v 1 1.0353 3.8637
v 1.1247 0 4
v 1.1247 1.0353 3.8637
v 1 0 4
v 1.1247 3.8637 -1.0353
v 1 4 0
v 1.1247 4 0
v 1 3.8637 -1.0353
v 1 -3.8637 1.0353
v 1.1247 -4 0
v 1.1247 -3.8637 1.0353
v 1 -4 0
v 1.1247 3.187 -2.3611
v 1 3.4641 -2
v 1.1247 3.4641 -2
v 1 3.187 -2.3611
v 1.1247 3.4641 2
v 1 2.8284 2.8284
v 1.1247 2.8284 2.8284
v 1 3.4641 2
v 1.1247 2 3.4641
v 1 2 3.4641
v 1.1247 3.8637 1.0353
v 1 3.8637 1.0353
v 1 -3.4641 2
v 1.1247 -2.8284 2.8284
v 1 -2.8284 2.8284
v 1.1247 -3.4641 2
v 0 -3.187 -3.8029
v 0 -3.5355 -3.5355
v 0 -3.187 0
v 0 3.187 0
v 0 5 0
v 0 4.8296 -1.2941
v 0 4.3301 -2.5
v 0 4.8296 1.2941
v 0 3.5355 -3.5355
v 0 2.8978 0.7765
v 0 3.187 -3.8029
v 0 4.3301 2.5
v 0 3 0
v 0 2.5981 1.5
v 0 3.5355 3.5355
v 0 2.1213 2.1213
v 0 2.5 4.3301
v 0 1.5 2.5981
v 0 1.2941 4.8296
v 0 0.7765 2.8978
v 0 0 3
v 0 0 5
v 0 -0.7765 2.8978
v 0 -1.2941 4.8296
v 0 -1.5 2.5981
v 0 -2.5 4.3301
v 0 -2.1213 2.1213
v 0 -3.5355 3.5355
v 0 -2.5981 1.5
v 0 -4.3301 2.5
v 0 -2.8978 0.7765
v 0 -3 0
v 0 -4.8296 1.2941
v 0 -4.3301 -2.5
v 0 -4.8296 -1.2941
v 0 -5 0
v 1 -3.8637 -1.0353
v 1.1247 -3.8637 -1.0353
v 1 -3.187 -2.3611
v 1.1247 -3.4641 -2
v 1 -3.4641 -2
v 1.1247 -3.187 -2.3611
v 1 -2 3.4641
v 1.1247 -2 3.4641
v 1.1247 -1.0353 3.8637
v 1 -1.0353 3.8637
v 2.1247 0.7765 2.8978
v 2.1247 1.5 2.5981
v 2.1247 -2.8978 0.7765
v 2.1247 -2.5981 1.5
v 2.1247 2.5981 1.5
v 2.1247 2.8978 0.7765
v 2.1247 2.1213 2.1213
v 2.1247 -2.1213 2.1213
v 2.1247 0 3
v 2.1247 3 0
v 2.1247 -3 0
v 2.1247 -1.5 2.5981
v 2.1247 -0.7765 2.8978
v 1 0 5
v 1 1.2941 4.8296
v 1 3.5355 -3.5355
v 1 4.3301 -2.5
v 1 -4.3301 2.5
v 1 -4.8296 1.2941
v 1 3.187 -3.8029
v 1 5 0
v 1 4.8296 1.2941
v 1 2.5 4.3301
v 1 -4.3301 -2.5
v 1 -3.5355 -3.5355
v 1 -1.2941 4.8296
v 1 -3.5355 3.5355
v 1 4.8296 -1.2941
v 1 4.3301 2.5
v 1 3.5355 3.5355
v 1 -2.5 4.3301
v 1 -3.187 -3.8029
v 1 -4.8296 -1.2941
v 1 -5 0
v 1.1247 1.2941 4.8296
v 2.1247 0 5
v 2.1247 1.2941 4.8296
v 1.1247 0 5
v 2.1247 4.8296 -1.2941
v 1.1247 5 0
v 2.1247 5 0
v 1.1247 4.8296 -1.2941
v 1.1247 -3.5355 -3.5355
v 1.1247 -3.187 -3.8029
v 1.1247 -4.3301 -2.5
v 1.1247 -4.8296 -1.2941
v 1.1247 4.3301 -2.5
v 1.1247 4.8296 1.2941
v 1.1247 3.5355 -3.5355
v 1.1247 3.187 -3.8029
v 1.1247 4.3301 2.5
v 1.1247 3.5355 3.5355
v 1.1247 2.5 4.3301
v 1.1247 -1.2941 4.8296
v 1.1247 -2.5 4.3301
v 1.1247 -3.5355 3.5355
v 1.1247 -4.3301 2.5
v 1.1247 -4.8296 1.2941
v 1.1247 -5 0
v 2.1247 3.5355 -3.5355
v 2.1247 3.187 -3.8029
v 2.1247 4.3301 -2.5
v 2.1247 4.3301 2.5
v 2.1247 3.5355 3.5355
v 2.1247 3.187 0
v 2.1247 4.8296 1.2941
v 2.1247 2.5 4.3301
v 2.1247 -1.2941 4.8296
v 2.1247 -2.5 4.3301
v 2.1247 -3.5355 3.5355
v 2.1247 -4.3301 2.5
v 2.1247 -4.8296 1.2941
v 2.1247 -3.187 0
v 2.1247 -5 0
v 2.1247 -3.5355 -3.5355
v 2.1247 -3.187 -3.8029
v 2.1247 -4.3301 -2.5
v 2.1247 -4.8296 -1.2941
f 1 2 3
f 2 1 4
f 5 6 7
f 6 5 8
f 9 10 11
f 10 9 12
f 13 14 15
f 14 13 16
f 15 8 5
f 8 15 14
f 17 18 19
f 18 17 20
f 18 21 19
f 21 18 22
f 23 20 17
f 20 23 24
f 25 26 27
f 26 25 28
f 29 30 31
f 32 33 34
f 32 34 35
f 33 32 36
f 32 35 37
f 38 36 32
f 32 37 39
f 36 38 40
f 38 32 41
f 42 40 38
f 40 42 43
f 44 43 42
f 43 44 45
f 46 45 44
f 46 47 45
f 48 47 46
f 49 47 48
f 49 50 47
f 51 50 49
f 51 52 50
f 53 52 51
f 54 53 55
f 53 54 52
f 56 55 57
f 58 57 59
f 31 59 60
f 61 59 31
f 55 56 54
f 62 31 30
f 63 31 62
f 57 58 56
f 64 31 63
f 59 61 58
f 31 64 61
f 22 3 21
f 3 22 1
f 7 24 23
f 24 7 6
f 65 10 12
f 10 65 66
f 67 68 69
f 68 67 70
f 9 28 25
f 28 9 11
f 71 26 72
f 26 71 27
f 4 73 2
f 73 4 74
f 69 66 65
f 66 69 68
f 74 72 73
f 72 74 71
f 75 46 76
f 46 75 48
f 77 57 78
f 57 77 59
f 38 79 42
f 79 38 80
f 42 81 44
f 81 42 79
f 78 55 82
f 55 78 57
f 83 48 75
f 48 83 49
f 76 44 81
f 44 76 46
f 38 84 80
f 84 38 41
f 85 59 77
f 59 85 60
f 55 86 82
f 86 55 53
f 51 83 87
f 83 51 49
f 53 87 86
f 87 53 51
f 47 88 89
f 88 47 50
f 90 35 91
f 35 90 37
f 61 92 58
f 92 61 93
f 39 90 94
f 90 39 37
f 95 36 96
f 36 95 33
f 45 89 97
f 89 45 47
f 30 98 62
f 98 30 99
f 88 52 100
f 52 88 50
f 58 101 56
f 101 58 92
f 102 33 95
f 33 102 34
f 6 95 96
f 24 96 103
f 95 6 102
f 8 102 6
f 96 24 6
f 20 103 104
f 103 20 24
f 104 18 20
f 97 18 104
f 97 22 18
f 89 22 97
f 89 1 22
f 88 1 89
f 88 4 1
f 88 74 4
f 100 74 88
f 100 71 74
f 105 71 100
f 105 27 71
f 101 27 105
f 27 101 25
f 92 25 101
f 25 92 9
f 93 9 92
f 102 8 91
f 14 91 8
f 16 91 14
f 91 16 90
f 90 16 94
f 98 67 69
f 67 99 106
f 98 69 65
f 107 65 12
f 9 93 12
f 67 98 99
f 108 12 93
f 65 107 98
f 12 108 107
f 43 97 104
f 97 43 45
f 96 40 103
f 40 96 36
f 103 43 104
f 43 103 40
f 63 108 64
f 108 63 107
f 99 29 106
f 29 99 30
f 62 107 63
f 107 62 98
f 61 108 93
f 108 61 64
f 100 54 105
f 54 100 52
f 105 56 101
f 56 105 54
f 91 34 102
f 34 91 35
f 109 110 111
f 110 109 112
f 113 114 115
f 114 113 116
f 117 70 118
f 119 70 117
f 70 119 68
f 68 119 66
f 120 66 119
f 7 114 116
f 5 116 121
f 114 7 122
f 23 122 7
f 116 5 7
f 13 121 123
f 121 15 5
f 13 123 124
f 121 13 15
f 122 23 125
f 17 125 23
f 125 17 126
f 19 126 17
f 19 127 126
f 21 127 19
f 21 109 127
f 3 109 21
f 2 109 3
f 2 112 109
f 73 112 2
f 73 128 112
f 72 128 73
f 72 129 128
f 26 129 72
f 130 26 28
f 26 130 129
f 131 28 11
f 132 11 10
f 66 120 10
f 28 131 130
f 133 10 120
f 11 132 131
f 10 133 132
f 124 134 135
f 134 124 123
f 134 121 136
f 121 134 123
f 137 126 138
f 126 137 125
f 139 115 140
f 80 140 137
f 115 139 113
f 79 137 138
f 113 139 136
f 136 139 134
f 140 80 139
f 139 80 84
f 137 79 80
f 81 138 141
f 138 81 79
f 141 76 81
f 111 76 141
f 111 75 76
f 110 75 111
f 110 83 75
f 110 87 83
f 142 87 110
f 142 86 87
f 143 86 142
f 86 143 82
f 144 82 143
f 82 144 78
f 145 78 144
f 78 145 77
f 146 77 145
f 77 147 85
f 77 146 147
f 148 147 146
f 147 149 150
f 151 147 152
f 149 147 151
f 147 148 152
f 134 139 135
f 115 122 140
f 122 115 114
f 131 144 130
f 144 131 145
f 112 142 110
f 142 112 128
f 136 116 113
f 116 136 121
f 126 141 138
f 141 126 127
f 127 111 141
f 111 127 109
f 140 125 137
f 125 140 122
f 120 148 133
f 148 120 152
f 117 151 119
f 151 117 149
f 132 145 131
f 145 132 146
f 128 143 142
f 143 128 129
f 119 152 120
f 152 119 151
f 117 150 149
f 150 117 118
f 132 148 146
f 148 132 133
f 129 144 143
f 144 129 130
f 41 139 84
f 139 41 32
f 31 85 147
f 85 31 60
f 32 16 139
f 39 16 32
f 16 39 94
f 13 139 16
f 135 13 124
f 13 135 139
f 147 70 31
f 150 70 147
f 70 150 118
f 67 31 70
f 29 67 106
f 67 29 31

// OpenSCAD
// file: ../build_environments.scad
// build_environments.scad: modules to build level sections
//

module pool(diameter=10.0, wall_height=2.0, step_width=3.0, connections=[])
{
    difference() {
        union() {
        difference() {
            cylinder(h=0.5,r1=diameter+step_width,r2=diameter+step_width,$fn=48);
            translate([0,0,-0.1])
                cylinder(h=0.7,r1=diameter,r2=diameter,$fn=48);
        }
        difference() {
            cylinder(h=wall_height,r1=diameter+step_width+1.0,r2=diameter+step_width+1.0,$fn=48);
            translate([0,0,-0.1])
                cylinder(h=wall_height+0.2,r1=diameter+step_width,r2=diameter+step_width,$fn=48);
        }
        }
    
        for (c = connections)
        {
            rotate([0,90,0]) {
                angle = atan2(c[1],c[0]);
                rotate([-angle,0,0]) {
                    cylinder(h=diameter+5.0,r1=c[2],r2=c[2],$fn=48);
                }
            }
        }
    }
}

module straight(length=10.0, width=2.0, dy1=0.0, dy2=0.0, dz=0.0)
{
    dims = [0, 0, 0, 0, 0, (dz/length)];
    matrix = [
        [ 1, dims[0], dims[1], 0 ],
        [ dims[2], 1, dims[4], 0 ],
        [ dims[5], dims[3], 1, 0 ],
        [ 0, 0, 0, 1 ]
    ];
    multmatrix(matrix)
    difference() {
        translate([dy1,0,0])
        union() {
            rotate([0,90,0]) {
                difference() {
                    cylinder(h=(length-dy1-dy2),r1=width+1.0,r2=width+1.0,$fn=24);
                    translate([0,0,-0.1])
                        cylinder(h=(length-dy1-dy2+0.2),r1=width,r2=width,$fn=24);
                }
                difference() {
                    cylinder(h=1.0,r1=width+2.0,r2=width+2.0,$fn=24);
                    translate([0,0,-0.1])
                        cylinder(h=1.2,r1=width,r2=width,$fn=24);
                }
                translate([0,0,(length-dy1-dy2)-1.0]) {
                    difference() {
                        cylinder(h=1.0,r1=width+2.0,r2=width+2.0,$fn=24);
                        translate([0,0,-0.1])
                            cylinder(h=1.2,r1=width,r2=width,$fn=24);
                    }
                }
            }
        }
        translate([0,0,-(2*width+4.0)/2])
            cube([3*length,3*length,2*width+4.0],center=true);
    }
}

module curve(p0=[0,0], center=[0,0], dir=1, angle=0.0, width=2.0)
{
    radius = sqrt((p0[0]-center[0])*(p0[0]-center[0]) + (p0[1]-center[1])*(p0[1]-center[1]));
    if (dir == 0) {
        difference() {
            rotate([0,0,-90])
            difference() {
                rotate_extrude(angle = angle, convexity = 10, $fn=32)
                    translate([radius, 0, 0])
                        circle(r = width+1.0,$fn=24);
                rotate([0,0,-1.0])
                    rotate_extrude(angle = angle+2.0, convexity = 10, $fn=32)
                        translate([radius, 0, 0])
                            circle(r = width,$fn=24);
            }
            translate([0,0,-(2*width+4.0)/2])
                cube([5*radius,5*radius,2*width+4.0],center=true);
        }
    }
    else {
        difference() {
            rotate([0,0,90])
            difference() {
                rotate_extrude(angle = -angle, convexity = 10, $fn=32)
                    translate([radius, 0, 0])
                        circle(r = width+1.0,$fn=24);
                rotate([0,0,1.0])
                    rotate_extrude(angle = -angle-2.0, convexity = 10, $fn=32)
                        translate([radius, 0, 0])
                            circle(r = width,$fn=24);
            }
            translate([0,0,-(2*width+4.0)/2])
                cube([5*radius,5*radius,2*width+4.0],center=true);
        }
    }

}

// test pool
//pool(diameter=12.0000, wall_height=3.0000, step_width=3.0000, connections=[[0.0000,-26.0000,2.0000], [23.6074,0.0000,2.0000]]);

// test straight, slope
//straight(length=26.0000, width=2.0000, dy1=11.8322, dy2=6.7082, dz=0.0000);
//straight(length=29.1549, width=12.0000, dy1=0.0000, dy2=0.0000, dz=-15.0000);

// test curve
//curve(p0=[23.6074, 0.0000], center=[23.6074, 5.0000], dir=0, angle=60.1011, width=2.0000);
//curve(p0=[33.6426, 12.4219], center=[37.9771, 9.9295], dir=1, angle=120.4627, width=2.0000);
// main file
use <../build_environments.scad>;
straight(length=2.1247, width=3.0000, dy1=0.0000, dy2=0.0000, dz=0.0000);
